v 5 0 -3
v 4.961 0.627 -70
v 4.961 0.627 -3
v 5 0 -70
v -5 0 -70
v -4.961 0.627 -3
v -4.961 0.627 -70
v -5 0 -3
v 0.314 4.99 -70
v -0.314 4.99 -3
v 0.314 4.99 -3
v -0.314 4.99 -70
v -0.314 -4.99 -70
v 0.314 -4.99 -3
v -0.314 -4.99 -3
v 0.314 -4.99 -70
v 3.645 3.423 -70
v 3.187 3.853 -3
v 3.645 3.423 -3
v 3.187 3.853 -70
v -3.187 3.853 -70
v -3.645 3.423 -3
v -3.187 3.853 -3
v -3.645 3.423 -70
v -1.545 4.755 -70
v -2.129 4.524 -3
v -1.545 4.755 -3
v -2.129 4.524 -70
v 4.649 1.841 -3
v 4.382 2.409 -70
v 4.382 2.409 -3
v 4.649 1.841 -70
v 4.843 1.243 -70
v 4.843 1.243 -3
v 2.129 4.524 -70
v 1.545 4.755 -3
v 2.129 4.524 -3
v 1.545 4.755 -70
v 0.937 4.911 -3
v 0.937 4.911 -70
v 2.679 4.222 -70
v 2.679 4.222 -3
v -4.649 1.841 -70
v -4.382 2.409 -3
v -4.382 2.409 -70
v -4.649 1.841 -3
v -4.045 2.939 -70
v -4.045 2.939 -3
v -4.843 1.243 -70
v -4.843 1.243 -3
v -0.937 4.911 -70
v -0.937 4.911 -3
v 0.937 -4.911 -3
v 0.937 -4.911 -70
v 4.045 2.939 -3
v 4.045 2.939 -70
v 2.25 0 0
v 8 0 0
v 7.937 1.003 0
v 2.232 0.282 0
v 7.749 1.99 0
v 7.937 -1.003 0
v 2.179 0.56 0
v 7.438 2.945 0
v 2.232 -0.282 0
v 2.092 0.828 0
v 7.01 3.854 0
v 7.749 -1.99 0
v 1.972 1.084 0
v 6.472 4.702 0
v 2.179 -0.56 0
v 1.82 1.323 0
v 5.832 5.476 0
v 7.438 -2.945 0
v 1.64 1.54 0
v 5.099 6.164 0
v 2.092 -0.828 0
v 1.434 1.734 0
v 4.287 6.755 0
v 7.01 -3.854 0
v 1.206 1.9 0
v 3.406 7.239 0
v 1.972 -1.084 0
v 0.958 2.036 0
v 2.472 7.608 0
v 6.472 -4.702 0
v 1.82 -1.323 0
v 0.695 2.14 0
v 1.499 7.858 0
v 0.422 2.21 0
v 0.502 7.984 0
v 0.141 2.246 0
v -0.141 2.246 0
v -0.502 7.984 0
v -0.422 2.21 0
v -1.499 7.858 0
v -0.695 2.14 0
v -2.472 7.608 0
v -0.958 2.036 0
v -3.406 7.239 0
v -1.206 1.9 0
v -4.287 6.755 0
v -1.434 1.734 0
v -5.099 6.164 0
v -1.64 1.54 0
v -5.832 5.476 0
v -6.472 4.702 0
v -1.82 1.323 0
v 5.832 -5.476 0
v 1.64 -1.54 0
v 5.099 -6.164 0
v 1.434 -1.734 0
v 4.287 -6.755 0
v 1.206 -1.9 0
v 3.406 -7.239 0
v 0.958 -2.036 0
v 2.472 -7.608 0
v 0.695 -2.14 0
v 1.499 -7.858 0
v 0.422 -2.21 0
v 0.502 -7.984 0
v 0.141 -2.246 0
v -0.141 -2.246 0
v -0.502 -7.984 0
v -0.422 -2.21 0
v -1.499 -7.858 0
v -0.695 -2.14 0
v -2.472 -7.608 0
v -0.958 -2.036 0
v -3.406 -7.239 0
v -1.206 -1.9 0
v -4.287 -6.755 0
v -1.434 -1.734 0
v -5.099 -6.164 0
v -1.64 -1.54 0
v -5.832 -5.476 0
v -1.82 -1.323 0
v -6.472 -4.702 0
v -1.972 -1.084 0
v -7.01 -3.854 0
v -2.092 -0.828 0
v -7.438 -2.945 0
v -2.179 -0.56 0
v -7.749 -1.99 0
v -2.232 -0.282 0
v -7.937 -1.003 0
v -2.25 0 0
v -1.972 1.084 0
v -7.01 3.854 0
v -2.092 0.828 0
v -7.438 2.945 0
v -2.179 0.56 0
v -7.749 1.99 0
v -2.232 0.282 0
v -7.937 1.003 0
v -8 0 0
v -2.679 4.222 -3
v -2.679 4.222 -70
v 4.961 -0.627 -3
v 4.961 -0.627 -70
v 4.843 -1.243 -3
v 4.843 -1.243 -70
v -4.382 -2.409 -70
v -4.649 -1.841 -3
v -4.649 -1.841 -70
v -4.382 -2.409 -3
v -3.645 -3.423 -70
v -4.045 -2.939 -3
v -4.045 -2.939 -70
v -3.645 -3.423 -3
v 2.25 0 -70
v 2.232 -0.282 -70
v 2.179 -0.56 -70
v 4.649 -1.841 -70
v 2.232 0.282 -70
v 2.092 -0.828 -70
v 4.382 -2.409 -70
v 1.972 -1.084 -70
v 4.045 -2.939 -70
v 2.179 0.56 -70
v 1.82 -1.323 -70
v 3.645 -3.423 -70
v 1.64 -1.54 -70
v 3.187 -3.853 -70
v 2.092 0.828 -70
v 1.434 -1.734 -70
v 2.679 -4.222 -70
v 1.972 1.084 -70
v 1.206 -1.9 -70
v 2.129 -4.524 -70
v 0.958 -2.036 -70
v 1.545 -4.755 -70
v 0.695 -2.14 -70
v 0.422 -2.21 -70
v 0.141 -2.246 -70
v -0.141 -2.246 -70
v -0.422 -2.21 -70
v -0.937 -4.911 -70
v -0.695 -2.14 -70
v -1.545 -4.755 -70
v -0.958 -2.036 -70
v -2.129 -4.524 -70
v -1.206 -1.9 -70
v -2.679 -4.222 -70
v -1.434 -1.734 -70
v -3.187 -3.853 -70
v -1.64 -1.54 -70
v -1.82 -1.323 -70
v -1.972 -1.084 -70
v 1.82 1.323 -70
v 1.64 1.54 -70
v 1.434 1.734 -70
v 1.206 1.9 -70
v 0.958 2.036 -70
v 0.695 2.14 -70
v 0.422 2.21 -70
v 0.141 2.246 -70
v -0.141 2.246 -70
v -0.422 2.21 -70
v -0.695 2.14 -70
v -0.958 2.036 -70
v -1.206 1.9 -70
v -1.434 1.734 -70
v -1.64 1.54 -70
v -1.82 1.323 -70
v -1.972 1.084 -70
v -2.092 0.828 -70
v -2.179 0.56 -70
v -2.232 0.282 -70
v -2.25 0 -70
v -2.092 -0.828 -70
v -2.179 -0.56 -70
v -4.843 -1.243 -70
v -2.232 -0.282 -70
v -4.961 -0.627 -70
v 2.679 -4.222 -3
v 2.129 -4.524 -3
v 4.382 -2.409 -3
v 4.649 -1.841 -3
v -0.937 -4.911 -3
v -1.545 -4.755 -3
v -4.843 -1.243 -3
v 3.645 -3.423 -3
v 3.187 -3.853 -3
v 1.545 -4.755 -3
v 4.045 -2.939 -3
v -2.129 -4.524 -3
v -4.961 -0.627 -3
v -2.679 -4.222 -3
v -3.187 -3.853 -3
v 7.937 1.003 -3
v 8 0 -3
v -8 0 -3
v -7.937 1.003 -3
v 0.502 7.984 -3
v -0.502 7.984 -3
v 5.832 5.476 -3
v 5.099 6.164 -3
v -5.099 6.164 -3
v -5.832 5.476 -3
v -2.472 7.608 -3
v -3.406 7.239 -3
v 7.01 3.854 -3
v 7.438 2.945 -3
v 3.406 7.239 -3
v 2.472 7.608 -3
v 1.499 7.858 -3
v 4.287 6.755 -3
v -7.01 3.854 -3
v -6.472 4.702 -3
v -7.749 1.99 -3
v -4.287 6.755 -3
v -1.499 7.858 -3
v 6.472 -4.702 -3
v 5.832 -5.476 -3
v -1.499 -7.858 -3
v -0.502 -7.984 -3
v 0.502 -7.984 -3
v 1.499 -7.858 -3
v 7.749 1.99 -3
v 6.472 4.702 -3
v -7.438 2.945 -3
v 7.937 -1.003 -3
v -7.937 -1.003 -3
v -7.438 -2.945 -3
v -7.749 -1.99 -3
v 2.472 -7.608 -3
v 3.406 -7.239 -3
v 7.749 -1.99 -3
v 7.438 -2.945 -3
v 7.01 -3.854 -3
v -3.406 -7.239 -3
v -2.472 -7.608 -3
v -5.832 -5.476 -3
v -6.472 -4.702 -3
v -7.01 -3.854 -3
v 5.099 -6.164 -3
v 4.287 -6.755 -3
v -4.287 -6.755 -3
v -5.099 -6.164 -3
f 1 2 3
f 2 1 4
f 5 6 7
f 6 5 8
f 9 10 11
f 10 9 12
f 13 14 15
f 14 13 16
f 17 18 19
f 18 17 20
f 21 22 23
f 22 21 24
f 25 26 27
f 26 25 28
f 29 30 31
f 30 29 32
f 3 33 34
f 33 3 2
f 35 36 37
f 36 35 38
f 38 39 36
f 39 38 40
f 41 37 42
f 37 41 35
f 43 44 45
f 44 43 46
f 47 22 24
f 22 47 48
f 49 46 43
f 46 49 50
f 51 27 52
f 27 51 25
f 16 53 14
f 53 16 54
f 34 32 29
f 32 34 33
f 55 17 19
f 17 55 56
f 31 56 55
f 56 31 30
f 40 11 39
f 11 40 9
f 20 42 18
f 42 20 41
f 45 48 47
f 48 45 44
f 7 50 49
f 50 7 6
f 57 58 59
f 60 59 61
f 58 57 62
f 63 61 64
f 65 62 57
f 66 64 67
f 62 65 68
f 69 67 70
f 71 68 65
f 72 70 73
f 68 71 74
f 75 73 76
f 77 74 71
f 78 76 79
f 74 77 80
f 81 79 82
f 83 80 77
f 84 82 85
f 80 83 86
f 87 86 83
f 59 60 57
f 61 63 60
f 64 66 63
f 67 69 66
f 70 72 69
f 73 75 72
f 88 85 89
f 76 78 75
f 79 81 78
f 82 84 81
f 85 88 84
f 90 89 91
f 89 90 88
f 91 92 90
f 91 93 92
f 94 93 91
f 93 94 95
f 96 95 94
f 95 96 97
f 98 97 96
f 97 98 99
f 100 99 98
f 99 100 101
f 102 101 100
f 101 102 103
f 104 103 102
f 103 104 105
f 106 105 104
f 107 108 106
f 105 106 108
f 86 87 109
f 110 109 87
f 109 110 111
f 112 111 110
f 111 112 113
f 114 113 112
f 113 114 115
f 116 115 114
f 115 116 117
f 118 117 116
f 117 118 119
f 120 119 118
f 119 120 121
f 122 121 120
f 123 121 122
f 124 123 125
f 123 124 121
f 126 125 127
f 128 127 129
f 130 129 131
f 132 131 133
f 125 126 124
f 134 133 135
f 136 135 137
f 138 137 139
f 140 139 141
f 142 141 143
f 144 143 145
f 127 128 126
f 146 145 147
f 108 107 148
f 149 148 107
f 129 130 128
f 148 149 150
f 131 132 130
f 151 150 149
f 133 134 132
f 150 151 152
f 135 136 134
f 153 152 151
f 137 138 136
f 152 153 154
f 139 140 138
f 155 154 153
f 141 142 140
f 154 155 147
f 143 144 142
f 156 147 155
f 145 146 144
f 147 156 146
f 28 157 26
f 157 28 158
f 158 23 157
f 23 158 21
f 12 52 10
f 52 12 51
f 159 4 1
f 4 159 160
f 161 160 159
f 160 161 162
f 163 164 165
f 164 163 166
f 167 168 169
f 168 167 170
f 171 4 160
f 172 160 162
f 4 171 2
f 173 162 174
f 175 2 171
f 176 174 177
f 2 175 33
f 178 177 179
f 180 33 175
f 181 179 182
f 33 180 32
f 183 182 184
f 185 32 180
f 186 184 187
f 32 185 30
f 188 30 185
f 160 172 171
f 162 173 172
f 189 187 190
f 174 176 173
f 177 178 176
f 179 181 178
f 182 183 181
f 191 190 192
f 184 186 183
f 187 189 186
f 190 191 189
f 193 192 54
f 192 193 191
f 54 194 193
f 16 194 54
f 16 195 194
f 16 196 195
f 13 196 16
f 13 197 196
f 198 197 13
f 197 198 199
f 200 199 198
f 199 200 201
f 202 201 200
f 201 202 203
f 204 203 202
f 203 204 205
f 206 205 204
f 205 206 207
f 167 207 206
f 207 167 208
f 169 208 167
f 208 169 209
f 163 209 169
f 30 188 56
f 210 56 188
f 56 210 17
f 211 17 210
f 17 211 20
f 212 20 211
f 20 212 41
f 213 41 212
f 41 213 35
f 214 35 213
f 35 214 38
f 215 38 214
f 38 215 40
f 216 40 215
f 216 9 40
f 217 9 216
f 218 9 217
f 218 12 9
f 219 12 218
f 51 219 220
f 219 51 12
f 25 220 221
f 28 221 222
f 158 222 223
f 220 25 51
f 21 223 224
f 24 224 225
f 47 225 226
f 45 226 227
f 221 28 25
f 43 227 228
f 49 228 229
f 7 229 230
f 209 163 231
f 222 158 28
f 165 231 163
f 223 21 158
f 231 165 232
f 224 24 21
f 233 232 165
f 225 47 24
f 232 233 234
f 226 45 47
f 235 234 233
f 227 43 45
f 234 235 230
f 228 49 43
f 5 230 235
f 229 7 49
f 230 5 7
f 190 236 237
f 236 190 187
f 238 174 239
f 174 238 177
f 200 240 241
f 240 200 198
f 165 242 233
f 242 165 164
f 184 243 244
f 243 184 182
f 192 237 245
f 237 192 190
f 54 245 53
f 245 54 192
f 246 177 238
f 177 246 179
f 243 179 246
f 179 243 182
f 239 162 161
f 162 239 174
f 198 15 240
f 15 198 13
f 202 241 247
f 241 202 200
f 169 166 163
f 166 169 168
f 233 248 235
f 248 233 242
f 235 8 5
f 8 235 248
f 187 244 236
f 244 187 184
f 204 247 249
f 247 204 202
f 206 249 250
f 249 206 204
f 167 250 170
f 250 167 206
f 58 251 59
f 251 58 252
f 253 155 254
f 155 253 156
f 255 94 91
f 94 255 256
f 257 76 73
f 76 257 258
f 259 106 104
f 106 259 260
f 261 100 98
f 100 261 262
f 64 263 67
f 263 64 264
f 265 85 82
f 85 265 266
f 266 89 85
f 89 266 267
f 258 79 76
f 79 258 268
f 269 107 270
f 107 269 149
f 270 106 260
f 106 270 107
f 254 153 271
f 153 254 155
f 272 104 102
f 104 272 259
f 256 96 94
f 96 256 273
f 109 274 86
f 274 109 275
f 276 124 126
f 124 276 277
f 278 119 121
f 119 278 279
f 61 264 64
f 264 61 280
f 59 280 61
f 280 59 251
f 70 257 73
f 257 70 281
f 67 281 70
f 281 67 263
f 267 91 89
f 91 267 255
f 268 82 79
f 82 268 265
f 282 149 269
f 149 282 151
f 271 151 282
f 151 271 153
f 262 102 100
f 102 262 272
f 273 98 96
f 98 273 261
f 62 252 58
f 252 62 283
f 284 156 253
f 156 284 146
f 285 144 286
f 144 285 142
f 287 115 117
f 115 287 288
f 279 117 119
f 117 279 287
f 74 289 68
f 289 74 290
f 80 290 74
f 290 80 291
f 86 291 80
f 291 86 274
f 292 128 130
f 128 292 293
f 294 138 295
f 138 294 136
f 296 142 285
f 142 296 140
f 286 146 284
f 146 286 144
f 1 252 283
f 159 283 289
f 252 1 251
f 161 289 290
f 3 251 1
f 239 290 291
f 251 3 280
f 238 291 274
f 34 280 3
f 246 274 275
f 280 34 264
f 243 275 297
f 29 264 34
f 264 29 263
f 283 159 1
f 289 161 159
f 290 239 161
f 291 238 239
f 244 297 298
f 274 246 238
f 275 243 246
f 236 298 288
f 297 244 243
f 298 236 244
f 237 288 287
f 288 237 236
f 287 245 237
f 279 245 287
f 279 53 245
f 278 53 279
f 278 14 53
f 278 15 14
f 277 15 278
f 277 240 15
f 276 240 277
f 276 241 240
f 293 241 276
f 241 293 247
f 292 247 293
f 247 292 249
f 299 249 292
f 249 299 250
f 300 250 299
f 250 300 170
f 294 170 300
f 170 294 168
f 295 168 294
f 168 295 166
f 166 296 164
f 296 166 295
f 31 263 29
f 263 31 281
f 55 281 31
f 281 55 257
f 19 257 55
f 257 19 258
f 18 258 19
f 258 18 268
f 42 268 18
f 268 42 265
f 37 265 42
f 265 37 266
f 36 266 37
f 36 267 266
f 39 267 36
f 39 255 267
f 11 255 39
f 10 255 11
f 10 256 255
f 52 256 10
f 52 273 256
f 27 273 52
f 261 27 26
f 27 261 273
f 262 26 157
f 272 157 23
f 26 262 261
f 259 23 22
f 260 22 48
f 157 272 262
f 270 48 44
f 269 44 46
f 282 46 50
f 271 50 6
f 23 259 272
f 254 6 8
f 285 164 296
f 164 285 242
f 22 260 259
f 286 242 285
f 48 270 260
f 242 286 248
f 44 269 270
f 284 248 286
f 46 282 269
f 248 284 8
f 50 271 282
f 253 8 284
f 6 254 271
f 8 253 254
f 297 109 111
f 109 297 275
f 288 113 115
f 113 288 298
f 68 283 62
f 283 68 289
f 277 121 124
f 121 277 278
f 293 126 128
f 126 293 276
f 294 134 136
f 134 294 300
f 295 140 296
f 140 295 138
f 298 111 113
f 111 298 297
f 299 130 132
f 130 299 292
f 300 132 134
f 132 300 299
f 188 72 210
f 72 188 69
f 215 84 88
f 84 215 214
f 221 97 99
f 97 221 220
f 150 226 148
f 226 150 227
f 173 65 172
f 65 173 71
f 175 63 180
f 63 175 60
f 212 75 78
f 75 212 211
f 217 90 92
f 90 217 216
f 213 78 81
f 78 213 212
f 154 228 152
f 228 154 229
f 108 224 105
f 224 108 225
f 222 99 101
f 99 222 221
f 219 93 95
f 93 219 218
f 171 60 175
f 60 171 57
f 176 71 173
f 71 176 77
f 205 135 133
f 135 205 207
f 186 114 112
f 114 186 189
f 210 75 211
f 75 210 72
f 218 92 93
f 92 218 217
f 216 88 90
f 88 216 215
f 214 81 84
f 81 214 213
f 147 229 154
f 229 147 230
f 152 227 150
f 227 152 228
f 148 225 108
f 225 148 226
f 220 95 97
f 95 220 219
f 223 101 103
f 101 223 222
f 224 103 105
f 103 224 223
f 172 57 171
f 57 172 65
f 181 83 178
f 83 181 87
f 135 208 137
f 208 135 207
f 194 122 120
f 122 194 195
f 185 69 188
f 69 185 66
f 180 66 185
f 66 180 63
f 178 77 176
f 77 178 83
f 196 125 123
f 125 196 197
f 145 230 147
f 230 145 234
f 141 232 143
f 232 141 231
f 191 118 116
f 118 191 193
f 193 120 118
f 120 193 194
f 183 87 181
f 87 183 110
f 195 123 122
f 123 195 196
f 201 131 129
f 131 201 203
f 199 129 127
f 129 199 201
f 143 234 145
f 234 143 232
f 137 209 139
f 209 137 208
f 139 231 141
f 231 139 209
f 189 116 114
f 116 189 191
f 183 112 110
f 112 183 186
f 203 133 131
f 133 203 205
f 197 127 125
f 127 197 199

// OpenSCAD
$fn = 50;


difference() {
	union() {
		translate(v = [0, 0, -70.0000000000]) {
			cylinder(h = 70, r = 5.0000000000);
		}
		translate(v = [0, 0, -3.0000000000]) {
			cylinder(h = 3, r = 8.0000000000);
		}
	}
	union() {
		#translate(v = [0, 0, -70]) {
			cylinder(h = 70, r = 2.2500000000);
		}
	}
}
